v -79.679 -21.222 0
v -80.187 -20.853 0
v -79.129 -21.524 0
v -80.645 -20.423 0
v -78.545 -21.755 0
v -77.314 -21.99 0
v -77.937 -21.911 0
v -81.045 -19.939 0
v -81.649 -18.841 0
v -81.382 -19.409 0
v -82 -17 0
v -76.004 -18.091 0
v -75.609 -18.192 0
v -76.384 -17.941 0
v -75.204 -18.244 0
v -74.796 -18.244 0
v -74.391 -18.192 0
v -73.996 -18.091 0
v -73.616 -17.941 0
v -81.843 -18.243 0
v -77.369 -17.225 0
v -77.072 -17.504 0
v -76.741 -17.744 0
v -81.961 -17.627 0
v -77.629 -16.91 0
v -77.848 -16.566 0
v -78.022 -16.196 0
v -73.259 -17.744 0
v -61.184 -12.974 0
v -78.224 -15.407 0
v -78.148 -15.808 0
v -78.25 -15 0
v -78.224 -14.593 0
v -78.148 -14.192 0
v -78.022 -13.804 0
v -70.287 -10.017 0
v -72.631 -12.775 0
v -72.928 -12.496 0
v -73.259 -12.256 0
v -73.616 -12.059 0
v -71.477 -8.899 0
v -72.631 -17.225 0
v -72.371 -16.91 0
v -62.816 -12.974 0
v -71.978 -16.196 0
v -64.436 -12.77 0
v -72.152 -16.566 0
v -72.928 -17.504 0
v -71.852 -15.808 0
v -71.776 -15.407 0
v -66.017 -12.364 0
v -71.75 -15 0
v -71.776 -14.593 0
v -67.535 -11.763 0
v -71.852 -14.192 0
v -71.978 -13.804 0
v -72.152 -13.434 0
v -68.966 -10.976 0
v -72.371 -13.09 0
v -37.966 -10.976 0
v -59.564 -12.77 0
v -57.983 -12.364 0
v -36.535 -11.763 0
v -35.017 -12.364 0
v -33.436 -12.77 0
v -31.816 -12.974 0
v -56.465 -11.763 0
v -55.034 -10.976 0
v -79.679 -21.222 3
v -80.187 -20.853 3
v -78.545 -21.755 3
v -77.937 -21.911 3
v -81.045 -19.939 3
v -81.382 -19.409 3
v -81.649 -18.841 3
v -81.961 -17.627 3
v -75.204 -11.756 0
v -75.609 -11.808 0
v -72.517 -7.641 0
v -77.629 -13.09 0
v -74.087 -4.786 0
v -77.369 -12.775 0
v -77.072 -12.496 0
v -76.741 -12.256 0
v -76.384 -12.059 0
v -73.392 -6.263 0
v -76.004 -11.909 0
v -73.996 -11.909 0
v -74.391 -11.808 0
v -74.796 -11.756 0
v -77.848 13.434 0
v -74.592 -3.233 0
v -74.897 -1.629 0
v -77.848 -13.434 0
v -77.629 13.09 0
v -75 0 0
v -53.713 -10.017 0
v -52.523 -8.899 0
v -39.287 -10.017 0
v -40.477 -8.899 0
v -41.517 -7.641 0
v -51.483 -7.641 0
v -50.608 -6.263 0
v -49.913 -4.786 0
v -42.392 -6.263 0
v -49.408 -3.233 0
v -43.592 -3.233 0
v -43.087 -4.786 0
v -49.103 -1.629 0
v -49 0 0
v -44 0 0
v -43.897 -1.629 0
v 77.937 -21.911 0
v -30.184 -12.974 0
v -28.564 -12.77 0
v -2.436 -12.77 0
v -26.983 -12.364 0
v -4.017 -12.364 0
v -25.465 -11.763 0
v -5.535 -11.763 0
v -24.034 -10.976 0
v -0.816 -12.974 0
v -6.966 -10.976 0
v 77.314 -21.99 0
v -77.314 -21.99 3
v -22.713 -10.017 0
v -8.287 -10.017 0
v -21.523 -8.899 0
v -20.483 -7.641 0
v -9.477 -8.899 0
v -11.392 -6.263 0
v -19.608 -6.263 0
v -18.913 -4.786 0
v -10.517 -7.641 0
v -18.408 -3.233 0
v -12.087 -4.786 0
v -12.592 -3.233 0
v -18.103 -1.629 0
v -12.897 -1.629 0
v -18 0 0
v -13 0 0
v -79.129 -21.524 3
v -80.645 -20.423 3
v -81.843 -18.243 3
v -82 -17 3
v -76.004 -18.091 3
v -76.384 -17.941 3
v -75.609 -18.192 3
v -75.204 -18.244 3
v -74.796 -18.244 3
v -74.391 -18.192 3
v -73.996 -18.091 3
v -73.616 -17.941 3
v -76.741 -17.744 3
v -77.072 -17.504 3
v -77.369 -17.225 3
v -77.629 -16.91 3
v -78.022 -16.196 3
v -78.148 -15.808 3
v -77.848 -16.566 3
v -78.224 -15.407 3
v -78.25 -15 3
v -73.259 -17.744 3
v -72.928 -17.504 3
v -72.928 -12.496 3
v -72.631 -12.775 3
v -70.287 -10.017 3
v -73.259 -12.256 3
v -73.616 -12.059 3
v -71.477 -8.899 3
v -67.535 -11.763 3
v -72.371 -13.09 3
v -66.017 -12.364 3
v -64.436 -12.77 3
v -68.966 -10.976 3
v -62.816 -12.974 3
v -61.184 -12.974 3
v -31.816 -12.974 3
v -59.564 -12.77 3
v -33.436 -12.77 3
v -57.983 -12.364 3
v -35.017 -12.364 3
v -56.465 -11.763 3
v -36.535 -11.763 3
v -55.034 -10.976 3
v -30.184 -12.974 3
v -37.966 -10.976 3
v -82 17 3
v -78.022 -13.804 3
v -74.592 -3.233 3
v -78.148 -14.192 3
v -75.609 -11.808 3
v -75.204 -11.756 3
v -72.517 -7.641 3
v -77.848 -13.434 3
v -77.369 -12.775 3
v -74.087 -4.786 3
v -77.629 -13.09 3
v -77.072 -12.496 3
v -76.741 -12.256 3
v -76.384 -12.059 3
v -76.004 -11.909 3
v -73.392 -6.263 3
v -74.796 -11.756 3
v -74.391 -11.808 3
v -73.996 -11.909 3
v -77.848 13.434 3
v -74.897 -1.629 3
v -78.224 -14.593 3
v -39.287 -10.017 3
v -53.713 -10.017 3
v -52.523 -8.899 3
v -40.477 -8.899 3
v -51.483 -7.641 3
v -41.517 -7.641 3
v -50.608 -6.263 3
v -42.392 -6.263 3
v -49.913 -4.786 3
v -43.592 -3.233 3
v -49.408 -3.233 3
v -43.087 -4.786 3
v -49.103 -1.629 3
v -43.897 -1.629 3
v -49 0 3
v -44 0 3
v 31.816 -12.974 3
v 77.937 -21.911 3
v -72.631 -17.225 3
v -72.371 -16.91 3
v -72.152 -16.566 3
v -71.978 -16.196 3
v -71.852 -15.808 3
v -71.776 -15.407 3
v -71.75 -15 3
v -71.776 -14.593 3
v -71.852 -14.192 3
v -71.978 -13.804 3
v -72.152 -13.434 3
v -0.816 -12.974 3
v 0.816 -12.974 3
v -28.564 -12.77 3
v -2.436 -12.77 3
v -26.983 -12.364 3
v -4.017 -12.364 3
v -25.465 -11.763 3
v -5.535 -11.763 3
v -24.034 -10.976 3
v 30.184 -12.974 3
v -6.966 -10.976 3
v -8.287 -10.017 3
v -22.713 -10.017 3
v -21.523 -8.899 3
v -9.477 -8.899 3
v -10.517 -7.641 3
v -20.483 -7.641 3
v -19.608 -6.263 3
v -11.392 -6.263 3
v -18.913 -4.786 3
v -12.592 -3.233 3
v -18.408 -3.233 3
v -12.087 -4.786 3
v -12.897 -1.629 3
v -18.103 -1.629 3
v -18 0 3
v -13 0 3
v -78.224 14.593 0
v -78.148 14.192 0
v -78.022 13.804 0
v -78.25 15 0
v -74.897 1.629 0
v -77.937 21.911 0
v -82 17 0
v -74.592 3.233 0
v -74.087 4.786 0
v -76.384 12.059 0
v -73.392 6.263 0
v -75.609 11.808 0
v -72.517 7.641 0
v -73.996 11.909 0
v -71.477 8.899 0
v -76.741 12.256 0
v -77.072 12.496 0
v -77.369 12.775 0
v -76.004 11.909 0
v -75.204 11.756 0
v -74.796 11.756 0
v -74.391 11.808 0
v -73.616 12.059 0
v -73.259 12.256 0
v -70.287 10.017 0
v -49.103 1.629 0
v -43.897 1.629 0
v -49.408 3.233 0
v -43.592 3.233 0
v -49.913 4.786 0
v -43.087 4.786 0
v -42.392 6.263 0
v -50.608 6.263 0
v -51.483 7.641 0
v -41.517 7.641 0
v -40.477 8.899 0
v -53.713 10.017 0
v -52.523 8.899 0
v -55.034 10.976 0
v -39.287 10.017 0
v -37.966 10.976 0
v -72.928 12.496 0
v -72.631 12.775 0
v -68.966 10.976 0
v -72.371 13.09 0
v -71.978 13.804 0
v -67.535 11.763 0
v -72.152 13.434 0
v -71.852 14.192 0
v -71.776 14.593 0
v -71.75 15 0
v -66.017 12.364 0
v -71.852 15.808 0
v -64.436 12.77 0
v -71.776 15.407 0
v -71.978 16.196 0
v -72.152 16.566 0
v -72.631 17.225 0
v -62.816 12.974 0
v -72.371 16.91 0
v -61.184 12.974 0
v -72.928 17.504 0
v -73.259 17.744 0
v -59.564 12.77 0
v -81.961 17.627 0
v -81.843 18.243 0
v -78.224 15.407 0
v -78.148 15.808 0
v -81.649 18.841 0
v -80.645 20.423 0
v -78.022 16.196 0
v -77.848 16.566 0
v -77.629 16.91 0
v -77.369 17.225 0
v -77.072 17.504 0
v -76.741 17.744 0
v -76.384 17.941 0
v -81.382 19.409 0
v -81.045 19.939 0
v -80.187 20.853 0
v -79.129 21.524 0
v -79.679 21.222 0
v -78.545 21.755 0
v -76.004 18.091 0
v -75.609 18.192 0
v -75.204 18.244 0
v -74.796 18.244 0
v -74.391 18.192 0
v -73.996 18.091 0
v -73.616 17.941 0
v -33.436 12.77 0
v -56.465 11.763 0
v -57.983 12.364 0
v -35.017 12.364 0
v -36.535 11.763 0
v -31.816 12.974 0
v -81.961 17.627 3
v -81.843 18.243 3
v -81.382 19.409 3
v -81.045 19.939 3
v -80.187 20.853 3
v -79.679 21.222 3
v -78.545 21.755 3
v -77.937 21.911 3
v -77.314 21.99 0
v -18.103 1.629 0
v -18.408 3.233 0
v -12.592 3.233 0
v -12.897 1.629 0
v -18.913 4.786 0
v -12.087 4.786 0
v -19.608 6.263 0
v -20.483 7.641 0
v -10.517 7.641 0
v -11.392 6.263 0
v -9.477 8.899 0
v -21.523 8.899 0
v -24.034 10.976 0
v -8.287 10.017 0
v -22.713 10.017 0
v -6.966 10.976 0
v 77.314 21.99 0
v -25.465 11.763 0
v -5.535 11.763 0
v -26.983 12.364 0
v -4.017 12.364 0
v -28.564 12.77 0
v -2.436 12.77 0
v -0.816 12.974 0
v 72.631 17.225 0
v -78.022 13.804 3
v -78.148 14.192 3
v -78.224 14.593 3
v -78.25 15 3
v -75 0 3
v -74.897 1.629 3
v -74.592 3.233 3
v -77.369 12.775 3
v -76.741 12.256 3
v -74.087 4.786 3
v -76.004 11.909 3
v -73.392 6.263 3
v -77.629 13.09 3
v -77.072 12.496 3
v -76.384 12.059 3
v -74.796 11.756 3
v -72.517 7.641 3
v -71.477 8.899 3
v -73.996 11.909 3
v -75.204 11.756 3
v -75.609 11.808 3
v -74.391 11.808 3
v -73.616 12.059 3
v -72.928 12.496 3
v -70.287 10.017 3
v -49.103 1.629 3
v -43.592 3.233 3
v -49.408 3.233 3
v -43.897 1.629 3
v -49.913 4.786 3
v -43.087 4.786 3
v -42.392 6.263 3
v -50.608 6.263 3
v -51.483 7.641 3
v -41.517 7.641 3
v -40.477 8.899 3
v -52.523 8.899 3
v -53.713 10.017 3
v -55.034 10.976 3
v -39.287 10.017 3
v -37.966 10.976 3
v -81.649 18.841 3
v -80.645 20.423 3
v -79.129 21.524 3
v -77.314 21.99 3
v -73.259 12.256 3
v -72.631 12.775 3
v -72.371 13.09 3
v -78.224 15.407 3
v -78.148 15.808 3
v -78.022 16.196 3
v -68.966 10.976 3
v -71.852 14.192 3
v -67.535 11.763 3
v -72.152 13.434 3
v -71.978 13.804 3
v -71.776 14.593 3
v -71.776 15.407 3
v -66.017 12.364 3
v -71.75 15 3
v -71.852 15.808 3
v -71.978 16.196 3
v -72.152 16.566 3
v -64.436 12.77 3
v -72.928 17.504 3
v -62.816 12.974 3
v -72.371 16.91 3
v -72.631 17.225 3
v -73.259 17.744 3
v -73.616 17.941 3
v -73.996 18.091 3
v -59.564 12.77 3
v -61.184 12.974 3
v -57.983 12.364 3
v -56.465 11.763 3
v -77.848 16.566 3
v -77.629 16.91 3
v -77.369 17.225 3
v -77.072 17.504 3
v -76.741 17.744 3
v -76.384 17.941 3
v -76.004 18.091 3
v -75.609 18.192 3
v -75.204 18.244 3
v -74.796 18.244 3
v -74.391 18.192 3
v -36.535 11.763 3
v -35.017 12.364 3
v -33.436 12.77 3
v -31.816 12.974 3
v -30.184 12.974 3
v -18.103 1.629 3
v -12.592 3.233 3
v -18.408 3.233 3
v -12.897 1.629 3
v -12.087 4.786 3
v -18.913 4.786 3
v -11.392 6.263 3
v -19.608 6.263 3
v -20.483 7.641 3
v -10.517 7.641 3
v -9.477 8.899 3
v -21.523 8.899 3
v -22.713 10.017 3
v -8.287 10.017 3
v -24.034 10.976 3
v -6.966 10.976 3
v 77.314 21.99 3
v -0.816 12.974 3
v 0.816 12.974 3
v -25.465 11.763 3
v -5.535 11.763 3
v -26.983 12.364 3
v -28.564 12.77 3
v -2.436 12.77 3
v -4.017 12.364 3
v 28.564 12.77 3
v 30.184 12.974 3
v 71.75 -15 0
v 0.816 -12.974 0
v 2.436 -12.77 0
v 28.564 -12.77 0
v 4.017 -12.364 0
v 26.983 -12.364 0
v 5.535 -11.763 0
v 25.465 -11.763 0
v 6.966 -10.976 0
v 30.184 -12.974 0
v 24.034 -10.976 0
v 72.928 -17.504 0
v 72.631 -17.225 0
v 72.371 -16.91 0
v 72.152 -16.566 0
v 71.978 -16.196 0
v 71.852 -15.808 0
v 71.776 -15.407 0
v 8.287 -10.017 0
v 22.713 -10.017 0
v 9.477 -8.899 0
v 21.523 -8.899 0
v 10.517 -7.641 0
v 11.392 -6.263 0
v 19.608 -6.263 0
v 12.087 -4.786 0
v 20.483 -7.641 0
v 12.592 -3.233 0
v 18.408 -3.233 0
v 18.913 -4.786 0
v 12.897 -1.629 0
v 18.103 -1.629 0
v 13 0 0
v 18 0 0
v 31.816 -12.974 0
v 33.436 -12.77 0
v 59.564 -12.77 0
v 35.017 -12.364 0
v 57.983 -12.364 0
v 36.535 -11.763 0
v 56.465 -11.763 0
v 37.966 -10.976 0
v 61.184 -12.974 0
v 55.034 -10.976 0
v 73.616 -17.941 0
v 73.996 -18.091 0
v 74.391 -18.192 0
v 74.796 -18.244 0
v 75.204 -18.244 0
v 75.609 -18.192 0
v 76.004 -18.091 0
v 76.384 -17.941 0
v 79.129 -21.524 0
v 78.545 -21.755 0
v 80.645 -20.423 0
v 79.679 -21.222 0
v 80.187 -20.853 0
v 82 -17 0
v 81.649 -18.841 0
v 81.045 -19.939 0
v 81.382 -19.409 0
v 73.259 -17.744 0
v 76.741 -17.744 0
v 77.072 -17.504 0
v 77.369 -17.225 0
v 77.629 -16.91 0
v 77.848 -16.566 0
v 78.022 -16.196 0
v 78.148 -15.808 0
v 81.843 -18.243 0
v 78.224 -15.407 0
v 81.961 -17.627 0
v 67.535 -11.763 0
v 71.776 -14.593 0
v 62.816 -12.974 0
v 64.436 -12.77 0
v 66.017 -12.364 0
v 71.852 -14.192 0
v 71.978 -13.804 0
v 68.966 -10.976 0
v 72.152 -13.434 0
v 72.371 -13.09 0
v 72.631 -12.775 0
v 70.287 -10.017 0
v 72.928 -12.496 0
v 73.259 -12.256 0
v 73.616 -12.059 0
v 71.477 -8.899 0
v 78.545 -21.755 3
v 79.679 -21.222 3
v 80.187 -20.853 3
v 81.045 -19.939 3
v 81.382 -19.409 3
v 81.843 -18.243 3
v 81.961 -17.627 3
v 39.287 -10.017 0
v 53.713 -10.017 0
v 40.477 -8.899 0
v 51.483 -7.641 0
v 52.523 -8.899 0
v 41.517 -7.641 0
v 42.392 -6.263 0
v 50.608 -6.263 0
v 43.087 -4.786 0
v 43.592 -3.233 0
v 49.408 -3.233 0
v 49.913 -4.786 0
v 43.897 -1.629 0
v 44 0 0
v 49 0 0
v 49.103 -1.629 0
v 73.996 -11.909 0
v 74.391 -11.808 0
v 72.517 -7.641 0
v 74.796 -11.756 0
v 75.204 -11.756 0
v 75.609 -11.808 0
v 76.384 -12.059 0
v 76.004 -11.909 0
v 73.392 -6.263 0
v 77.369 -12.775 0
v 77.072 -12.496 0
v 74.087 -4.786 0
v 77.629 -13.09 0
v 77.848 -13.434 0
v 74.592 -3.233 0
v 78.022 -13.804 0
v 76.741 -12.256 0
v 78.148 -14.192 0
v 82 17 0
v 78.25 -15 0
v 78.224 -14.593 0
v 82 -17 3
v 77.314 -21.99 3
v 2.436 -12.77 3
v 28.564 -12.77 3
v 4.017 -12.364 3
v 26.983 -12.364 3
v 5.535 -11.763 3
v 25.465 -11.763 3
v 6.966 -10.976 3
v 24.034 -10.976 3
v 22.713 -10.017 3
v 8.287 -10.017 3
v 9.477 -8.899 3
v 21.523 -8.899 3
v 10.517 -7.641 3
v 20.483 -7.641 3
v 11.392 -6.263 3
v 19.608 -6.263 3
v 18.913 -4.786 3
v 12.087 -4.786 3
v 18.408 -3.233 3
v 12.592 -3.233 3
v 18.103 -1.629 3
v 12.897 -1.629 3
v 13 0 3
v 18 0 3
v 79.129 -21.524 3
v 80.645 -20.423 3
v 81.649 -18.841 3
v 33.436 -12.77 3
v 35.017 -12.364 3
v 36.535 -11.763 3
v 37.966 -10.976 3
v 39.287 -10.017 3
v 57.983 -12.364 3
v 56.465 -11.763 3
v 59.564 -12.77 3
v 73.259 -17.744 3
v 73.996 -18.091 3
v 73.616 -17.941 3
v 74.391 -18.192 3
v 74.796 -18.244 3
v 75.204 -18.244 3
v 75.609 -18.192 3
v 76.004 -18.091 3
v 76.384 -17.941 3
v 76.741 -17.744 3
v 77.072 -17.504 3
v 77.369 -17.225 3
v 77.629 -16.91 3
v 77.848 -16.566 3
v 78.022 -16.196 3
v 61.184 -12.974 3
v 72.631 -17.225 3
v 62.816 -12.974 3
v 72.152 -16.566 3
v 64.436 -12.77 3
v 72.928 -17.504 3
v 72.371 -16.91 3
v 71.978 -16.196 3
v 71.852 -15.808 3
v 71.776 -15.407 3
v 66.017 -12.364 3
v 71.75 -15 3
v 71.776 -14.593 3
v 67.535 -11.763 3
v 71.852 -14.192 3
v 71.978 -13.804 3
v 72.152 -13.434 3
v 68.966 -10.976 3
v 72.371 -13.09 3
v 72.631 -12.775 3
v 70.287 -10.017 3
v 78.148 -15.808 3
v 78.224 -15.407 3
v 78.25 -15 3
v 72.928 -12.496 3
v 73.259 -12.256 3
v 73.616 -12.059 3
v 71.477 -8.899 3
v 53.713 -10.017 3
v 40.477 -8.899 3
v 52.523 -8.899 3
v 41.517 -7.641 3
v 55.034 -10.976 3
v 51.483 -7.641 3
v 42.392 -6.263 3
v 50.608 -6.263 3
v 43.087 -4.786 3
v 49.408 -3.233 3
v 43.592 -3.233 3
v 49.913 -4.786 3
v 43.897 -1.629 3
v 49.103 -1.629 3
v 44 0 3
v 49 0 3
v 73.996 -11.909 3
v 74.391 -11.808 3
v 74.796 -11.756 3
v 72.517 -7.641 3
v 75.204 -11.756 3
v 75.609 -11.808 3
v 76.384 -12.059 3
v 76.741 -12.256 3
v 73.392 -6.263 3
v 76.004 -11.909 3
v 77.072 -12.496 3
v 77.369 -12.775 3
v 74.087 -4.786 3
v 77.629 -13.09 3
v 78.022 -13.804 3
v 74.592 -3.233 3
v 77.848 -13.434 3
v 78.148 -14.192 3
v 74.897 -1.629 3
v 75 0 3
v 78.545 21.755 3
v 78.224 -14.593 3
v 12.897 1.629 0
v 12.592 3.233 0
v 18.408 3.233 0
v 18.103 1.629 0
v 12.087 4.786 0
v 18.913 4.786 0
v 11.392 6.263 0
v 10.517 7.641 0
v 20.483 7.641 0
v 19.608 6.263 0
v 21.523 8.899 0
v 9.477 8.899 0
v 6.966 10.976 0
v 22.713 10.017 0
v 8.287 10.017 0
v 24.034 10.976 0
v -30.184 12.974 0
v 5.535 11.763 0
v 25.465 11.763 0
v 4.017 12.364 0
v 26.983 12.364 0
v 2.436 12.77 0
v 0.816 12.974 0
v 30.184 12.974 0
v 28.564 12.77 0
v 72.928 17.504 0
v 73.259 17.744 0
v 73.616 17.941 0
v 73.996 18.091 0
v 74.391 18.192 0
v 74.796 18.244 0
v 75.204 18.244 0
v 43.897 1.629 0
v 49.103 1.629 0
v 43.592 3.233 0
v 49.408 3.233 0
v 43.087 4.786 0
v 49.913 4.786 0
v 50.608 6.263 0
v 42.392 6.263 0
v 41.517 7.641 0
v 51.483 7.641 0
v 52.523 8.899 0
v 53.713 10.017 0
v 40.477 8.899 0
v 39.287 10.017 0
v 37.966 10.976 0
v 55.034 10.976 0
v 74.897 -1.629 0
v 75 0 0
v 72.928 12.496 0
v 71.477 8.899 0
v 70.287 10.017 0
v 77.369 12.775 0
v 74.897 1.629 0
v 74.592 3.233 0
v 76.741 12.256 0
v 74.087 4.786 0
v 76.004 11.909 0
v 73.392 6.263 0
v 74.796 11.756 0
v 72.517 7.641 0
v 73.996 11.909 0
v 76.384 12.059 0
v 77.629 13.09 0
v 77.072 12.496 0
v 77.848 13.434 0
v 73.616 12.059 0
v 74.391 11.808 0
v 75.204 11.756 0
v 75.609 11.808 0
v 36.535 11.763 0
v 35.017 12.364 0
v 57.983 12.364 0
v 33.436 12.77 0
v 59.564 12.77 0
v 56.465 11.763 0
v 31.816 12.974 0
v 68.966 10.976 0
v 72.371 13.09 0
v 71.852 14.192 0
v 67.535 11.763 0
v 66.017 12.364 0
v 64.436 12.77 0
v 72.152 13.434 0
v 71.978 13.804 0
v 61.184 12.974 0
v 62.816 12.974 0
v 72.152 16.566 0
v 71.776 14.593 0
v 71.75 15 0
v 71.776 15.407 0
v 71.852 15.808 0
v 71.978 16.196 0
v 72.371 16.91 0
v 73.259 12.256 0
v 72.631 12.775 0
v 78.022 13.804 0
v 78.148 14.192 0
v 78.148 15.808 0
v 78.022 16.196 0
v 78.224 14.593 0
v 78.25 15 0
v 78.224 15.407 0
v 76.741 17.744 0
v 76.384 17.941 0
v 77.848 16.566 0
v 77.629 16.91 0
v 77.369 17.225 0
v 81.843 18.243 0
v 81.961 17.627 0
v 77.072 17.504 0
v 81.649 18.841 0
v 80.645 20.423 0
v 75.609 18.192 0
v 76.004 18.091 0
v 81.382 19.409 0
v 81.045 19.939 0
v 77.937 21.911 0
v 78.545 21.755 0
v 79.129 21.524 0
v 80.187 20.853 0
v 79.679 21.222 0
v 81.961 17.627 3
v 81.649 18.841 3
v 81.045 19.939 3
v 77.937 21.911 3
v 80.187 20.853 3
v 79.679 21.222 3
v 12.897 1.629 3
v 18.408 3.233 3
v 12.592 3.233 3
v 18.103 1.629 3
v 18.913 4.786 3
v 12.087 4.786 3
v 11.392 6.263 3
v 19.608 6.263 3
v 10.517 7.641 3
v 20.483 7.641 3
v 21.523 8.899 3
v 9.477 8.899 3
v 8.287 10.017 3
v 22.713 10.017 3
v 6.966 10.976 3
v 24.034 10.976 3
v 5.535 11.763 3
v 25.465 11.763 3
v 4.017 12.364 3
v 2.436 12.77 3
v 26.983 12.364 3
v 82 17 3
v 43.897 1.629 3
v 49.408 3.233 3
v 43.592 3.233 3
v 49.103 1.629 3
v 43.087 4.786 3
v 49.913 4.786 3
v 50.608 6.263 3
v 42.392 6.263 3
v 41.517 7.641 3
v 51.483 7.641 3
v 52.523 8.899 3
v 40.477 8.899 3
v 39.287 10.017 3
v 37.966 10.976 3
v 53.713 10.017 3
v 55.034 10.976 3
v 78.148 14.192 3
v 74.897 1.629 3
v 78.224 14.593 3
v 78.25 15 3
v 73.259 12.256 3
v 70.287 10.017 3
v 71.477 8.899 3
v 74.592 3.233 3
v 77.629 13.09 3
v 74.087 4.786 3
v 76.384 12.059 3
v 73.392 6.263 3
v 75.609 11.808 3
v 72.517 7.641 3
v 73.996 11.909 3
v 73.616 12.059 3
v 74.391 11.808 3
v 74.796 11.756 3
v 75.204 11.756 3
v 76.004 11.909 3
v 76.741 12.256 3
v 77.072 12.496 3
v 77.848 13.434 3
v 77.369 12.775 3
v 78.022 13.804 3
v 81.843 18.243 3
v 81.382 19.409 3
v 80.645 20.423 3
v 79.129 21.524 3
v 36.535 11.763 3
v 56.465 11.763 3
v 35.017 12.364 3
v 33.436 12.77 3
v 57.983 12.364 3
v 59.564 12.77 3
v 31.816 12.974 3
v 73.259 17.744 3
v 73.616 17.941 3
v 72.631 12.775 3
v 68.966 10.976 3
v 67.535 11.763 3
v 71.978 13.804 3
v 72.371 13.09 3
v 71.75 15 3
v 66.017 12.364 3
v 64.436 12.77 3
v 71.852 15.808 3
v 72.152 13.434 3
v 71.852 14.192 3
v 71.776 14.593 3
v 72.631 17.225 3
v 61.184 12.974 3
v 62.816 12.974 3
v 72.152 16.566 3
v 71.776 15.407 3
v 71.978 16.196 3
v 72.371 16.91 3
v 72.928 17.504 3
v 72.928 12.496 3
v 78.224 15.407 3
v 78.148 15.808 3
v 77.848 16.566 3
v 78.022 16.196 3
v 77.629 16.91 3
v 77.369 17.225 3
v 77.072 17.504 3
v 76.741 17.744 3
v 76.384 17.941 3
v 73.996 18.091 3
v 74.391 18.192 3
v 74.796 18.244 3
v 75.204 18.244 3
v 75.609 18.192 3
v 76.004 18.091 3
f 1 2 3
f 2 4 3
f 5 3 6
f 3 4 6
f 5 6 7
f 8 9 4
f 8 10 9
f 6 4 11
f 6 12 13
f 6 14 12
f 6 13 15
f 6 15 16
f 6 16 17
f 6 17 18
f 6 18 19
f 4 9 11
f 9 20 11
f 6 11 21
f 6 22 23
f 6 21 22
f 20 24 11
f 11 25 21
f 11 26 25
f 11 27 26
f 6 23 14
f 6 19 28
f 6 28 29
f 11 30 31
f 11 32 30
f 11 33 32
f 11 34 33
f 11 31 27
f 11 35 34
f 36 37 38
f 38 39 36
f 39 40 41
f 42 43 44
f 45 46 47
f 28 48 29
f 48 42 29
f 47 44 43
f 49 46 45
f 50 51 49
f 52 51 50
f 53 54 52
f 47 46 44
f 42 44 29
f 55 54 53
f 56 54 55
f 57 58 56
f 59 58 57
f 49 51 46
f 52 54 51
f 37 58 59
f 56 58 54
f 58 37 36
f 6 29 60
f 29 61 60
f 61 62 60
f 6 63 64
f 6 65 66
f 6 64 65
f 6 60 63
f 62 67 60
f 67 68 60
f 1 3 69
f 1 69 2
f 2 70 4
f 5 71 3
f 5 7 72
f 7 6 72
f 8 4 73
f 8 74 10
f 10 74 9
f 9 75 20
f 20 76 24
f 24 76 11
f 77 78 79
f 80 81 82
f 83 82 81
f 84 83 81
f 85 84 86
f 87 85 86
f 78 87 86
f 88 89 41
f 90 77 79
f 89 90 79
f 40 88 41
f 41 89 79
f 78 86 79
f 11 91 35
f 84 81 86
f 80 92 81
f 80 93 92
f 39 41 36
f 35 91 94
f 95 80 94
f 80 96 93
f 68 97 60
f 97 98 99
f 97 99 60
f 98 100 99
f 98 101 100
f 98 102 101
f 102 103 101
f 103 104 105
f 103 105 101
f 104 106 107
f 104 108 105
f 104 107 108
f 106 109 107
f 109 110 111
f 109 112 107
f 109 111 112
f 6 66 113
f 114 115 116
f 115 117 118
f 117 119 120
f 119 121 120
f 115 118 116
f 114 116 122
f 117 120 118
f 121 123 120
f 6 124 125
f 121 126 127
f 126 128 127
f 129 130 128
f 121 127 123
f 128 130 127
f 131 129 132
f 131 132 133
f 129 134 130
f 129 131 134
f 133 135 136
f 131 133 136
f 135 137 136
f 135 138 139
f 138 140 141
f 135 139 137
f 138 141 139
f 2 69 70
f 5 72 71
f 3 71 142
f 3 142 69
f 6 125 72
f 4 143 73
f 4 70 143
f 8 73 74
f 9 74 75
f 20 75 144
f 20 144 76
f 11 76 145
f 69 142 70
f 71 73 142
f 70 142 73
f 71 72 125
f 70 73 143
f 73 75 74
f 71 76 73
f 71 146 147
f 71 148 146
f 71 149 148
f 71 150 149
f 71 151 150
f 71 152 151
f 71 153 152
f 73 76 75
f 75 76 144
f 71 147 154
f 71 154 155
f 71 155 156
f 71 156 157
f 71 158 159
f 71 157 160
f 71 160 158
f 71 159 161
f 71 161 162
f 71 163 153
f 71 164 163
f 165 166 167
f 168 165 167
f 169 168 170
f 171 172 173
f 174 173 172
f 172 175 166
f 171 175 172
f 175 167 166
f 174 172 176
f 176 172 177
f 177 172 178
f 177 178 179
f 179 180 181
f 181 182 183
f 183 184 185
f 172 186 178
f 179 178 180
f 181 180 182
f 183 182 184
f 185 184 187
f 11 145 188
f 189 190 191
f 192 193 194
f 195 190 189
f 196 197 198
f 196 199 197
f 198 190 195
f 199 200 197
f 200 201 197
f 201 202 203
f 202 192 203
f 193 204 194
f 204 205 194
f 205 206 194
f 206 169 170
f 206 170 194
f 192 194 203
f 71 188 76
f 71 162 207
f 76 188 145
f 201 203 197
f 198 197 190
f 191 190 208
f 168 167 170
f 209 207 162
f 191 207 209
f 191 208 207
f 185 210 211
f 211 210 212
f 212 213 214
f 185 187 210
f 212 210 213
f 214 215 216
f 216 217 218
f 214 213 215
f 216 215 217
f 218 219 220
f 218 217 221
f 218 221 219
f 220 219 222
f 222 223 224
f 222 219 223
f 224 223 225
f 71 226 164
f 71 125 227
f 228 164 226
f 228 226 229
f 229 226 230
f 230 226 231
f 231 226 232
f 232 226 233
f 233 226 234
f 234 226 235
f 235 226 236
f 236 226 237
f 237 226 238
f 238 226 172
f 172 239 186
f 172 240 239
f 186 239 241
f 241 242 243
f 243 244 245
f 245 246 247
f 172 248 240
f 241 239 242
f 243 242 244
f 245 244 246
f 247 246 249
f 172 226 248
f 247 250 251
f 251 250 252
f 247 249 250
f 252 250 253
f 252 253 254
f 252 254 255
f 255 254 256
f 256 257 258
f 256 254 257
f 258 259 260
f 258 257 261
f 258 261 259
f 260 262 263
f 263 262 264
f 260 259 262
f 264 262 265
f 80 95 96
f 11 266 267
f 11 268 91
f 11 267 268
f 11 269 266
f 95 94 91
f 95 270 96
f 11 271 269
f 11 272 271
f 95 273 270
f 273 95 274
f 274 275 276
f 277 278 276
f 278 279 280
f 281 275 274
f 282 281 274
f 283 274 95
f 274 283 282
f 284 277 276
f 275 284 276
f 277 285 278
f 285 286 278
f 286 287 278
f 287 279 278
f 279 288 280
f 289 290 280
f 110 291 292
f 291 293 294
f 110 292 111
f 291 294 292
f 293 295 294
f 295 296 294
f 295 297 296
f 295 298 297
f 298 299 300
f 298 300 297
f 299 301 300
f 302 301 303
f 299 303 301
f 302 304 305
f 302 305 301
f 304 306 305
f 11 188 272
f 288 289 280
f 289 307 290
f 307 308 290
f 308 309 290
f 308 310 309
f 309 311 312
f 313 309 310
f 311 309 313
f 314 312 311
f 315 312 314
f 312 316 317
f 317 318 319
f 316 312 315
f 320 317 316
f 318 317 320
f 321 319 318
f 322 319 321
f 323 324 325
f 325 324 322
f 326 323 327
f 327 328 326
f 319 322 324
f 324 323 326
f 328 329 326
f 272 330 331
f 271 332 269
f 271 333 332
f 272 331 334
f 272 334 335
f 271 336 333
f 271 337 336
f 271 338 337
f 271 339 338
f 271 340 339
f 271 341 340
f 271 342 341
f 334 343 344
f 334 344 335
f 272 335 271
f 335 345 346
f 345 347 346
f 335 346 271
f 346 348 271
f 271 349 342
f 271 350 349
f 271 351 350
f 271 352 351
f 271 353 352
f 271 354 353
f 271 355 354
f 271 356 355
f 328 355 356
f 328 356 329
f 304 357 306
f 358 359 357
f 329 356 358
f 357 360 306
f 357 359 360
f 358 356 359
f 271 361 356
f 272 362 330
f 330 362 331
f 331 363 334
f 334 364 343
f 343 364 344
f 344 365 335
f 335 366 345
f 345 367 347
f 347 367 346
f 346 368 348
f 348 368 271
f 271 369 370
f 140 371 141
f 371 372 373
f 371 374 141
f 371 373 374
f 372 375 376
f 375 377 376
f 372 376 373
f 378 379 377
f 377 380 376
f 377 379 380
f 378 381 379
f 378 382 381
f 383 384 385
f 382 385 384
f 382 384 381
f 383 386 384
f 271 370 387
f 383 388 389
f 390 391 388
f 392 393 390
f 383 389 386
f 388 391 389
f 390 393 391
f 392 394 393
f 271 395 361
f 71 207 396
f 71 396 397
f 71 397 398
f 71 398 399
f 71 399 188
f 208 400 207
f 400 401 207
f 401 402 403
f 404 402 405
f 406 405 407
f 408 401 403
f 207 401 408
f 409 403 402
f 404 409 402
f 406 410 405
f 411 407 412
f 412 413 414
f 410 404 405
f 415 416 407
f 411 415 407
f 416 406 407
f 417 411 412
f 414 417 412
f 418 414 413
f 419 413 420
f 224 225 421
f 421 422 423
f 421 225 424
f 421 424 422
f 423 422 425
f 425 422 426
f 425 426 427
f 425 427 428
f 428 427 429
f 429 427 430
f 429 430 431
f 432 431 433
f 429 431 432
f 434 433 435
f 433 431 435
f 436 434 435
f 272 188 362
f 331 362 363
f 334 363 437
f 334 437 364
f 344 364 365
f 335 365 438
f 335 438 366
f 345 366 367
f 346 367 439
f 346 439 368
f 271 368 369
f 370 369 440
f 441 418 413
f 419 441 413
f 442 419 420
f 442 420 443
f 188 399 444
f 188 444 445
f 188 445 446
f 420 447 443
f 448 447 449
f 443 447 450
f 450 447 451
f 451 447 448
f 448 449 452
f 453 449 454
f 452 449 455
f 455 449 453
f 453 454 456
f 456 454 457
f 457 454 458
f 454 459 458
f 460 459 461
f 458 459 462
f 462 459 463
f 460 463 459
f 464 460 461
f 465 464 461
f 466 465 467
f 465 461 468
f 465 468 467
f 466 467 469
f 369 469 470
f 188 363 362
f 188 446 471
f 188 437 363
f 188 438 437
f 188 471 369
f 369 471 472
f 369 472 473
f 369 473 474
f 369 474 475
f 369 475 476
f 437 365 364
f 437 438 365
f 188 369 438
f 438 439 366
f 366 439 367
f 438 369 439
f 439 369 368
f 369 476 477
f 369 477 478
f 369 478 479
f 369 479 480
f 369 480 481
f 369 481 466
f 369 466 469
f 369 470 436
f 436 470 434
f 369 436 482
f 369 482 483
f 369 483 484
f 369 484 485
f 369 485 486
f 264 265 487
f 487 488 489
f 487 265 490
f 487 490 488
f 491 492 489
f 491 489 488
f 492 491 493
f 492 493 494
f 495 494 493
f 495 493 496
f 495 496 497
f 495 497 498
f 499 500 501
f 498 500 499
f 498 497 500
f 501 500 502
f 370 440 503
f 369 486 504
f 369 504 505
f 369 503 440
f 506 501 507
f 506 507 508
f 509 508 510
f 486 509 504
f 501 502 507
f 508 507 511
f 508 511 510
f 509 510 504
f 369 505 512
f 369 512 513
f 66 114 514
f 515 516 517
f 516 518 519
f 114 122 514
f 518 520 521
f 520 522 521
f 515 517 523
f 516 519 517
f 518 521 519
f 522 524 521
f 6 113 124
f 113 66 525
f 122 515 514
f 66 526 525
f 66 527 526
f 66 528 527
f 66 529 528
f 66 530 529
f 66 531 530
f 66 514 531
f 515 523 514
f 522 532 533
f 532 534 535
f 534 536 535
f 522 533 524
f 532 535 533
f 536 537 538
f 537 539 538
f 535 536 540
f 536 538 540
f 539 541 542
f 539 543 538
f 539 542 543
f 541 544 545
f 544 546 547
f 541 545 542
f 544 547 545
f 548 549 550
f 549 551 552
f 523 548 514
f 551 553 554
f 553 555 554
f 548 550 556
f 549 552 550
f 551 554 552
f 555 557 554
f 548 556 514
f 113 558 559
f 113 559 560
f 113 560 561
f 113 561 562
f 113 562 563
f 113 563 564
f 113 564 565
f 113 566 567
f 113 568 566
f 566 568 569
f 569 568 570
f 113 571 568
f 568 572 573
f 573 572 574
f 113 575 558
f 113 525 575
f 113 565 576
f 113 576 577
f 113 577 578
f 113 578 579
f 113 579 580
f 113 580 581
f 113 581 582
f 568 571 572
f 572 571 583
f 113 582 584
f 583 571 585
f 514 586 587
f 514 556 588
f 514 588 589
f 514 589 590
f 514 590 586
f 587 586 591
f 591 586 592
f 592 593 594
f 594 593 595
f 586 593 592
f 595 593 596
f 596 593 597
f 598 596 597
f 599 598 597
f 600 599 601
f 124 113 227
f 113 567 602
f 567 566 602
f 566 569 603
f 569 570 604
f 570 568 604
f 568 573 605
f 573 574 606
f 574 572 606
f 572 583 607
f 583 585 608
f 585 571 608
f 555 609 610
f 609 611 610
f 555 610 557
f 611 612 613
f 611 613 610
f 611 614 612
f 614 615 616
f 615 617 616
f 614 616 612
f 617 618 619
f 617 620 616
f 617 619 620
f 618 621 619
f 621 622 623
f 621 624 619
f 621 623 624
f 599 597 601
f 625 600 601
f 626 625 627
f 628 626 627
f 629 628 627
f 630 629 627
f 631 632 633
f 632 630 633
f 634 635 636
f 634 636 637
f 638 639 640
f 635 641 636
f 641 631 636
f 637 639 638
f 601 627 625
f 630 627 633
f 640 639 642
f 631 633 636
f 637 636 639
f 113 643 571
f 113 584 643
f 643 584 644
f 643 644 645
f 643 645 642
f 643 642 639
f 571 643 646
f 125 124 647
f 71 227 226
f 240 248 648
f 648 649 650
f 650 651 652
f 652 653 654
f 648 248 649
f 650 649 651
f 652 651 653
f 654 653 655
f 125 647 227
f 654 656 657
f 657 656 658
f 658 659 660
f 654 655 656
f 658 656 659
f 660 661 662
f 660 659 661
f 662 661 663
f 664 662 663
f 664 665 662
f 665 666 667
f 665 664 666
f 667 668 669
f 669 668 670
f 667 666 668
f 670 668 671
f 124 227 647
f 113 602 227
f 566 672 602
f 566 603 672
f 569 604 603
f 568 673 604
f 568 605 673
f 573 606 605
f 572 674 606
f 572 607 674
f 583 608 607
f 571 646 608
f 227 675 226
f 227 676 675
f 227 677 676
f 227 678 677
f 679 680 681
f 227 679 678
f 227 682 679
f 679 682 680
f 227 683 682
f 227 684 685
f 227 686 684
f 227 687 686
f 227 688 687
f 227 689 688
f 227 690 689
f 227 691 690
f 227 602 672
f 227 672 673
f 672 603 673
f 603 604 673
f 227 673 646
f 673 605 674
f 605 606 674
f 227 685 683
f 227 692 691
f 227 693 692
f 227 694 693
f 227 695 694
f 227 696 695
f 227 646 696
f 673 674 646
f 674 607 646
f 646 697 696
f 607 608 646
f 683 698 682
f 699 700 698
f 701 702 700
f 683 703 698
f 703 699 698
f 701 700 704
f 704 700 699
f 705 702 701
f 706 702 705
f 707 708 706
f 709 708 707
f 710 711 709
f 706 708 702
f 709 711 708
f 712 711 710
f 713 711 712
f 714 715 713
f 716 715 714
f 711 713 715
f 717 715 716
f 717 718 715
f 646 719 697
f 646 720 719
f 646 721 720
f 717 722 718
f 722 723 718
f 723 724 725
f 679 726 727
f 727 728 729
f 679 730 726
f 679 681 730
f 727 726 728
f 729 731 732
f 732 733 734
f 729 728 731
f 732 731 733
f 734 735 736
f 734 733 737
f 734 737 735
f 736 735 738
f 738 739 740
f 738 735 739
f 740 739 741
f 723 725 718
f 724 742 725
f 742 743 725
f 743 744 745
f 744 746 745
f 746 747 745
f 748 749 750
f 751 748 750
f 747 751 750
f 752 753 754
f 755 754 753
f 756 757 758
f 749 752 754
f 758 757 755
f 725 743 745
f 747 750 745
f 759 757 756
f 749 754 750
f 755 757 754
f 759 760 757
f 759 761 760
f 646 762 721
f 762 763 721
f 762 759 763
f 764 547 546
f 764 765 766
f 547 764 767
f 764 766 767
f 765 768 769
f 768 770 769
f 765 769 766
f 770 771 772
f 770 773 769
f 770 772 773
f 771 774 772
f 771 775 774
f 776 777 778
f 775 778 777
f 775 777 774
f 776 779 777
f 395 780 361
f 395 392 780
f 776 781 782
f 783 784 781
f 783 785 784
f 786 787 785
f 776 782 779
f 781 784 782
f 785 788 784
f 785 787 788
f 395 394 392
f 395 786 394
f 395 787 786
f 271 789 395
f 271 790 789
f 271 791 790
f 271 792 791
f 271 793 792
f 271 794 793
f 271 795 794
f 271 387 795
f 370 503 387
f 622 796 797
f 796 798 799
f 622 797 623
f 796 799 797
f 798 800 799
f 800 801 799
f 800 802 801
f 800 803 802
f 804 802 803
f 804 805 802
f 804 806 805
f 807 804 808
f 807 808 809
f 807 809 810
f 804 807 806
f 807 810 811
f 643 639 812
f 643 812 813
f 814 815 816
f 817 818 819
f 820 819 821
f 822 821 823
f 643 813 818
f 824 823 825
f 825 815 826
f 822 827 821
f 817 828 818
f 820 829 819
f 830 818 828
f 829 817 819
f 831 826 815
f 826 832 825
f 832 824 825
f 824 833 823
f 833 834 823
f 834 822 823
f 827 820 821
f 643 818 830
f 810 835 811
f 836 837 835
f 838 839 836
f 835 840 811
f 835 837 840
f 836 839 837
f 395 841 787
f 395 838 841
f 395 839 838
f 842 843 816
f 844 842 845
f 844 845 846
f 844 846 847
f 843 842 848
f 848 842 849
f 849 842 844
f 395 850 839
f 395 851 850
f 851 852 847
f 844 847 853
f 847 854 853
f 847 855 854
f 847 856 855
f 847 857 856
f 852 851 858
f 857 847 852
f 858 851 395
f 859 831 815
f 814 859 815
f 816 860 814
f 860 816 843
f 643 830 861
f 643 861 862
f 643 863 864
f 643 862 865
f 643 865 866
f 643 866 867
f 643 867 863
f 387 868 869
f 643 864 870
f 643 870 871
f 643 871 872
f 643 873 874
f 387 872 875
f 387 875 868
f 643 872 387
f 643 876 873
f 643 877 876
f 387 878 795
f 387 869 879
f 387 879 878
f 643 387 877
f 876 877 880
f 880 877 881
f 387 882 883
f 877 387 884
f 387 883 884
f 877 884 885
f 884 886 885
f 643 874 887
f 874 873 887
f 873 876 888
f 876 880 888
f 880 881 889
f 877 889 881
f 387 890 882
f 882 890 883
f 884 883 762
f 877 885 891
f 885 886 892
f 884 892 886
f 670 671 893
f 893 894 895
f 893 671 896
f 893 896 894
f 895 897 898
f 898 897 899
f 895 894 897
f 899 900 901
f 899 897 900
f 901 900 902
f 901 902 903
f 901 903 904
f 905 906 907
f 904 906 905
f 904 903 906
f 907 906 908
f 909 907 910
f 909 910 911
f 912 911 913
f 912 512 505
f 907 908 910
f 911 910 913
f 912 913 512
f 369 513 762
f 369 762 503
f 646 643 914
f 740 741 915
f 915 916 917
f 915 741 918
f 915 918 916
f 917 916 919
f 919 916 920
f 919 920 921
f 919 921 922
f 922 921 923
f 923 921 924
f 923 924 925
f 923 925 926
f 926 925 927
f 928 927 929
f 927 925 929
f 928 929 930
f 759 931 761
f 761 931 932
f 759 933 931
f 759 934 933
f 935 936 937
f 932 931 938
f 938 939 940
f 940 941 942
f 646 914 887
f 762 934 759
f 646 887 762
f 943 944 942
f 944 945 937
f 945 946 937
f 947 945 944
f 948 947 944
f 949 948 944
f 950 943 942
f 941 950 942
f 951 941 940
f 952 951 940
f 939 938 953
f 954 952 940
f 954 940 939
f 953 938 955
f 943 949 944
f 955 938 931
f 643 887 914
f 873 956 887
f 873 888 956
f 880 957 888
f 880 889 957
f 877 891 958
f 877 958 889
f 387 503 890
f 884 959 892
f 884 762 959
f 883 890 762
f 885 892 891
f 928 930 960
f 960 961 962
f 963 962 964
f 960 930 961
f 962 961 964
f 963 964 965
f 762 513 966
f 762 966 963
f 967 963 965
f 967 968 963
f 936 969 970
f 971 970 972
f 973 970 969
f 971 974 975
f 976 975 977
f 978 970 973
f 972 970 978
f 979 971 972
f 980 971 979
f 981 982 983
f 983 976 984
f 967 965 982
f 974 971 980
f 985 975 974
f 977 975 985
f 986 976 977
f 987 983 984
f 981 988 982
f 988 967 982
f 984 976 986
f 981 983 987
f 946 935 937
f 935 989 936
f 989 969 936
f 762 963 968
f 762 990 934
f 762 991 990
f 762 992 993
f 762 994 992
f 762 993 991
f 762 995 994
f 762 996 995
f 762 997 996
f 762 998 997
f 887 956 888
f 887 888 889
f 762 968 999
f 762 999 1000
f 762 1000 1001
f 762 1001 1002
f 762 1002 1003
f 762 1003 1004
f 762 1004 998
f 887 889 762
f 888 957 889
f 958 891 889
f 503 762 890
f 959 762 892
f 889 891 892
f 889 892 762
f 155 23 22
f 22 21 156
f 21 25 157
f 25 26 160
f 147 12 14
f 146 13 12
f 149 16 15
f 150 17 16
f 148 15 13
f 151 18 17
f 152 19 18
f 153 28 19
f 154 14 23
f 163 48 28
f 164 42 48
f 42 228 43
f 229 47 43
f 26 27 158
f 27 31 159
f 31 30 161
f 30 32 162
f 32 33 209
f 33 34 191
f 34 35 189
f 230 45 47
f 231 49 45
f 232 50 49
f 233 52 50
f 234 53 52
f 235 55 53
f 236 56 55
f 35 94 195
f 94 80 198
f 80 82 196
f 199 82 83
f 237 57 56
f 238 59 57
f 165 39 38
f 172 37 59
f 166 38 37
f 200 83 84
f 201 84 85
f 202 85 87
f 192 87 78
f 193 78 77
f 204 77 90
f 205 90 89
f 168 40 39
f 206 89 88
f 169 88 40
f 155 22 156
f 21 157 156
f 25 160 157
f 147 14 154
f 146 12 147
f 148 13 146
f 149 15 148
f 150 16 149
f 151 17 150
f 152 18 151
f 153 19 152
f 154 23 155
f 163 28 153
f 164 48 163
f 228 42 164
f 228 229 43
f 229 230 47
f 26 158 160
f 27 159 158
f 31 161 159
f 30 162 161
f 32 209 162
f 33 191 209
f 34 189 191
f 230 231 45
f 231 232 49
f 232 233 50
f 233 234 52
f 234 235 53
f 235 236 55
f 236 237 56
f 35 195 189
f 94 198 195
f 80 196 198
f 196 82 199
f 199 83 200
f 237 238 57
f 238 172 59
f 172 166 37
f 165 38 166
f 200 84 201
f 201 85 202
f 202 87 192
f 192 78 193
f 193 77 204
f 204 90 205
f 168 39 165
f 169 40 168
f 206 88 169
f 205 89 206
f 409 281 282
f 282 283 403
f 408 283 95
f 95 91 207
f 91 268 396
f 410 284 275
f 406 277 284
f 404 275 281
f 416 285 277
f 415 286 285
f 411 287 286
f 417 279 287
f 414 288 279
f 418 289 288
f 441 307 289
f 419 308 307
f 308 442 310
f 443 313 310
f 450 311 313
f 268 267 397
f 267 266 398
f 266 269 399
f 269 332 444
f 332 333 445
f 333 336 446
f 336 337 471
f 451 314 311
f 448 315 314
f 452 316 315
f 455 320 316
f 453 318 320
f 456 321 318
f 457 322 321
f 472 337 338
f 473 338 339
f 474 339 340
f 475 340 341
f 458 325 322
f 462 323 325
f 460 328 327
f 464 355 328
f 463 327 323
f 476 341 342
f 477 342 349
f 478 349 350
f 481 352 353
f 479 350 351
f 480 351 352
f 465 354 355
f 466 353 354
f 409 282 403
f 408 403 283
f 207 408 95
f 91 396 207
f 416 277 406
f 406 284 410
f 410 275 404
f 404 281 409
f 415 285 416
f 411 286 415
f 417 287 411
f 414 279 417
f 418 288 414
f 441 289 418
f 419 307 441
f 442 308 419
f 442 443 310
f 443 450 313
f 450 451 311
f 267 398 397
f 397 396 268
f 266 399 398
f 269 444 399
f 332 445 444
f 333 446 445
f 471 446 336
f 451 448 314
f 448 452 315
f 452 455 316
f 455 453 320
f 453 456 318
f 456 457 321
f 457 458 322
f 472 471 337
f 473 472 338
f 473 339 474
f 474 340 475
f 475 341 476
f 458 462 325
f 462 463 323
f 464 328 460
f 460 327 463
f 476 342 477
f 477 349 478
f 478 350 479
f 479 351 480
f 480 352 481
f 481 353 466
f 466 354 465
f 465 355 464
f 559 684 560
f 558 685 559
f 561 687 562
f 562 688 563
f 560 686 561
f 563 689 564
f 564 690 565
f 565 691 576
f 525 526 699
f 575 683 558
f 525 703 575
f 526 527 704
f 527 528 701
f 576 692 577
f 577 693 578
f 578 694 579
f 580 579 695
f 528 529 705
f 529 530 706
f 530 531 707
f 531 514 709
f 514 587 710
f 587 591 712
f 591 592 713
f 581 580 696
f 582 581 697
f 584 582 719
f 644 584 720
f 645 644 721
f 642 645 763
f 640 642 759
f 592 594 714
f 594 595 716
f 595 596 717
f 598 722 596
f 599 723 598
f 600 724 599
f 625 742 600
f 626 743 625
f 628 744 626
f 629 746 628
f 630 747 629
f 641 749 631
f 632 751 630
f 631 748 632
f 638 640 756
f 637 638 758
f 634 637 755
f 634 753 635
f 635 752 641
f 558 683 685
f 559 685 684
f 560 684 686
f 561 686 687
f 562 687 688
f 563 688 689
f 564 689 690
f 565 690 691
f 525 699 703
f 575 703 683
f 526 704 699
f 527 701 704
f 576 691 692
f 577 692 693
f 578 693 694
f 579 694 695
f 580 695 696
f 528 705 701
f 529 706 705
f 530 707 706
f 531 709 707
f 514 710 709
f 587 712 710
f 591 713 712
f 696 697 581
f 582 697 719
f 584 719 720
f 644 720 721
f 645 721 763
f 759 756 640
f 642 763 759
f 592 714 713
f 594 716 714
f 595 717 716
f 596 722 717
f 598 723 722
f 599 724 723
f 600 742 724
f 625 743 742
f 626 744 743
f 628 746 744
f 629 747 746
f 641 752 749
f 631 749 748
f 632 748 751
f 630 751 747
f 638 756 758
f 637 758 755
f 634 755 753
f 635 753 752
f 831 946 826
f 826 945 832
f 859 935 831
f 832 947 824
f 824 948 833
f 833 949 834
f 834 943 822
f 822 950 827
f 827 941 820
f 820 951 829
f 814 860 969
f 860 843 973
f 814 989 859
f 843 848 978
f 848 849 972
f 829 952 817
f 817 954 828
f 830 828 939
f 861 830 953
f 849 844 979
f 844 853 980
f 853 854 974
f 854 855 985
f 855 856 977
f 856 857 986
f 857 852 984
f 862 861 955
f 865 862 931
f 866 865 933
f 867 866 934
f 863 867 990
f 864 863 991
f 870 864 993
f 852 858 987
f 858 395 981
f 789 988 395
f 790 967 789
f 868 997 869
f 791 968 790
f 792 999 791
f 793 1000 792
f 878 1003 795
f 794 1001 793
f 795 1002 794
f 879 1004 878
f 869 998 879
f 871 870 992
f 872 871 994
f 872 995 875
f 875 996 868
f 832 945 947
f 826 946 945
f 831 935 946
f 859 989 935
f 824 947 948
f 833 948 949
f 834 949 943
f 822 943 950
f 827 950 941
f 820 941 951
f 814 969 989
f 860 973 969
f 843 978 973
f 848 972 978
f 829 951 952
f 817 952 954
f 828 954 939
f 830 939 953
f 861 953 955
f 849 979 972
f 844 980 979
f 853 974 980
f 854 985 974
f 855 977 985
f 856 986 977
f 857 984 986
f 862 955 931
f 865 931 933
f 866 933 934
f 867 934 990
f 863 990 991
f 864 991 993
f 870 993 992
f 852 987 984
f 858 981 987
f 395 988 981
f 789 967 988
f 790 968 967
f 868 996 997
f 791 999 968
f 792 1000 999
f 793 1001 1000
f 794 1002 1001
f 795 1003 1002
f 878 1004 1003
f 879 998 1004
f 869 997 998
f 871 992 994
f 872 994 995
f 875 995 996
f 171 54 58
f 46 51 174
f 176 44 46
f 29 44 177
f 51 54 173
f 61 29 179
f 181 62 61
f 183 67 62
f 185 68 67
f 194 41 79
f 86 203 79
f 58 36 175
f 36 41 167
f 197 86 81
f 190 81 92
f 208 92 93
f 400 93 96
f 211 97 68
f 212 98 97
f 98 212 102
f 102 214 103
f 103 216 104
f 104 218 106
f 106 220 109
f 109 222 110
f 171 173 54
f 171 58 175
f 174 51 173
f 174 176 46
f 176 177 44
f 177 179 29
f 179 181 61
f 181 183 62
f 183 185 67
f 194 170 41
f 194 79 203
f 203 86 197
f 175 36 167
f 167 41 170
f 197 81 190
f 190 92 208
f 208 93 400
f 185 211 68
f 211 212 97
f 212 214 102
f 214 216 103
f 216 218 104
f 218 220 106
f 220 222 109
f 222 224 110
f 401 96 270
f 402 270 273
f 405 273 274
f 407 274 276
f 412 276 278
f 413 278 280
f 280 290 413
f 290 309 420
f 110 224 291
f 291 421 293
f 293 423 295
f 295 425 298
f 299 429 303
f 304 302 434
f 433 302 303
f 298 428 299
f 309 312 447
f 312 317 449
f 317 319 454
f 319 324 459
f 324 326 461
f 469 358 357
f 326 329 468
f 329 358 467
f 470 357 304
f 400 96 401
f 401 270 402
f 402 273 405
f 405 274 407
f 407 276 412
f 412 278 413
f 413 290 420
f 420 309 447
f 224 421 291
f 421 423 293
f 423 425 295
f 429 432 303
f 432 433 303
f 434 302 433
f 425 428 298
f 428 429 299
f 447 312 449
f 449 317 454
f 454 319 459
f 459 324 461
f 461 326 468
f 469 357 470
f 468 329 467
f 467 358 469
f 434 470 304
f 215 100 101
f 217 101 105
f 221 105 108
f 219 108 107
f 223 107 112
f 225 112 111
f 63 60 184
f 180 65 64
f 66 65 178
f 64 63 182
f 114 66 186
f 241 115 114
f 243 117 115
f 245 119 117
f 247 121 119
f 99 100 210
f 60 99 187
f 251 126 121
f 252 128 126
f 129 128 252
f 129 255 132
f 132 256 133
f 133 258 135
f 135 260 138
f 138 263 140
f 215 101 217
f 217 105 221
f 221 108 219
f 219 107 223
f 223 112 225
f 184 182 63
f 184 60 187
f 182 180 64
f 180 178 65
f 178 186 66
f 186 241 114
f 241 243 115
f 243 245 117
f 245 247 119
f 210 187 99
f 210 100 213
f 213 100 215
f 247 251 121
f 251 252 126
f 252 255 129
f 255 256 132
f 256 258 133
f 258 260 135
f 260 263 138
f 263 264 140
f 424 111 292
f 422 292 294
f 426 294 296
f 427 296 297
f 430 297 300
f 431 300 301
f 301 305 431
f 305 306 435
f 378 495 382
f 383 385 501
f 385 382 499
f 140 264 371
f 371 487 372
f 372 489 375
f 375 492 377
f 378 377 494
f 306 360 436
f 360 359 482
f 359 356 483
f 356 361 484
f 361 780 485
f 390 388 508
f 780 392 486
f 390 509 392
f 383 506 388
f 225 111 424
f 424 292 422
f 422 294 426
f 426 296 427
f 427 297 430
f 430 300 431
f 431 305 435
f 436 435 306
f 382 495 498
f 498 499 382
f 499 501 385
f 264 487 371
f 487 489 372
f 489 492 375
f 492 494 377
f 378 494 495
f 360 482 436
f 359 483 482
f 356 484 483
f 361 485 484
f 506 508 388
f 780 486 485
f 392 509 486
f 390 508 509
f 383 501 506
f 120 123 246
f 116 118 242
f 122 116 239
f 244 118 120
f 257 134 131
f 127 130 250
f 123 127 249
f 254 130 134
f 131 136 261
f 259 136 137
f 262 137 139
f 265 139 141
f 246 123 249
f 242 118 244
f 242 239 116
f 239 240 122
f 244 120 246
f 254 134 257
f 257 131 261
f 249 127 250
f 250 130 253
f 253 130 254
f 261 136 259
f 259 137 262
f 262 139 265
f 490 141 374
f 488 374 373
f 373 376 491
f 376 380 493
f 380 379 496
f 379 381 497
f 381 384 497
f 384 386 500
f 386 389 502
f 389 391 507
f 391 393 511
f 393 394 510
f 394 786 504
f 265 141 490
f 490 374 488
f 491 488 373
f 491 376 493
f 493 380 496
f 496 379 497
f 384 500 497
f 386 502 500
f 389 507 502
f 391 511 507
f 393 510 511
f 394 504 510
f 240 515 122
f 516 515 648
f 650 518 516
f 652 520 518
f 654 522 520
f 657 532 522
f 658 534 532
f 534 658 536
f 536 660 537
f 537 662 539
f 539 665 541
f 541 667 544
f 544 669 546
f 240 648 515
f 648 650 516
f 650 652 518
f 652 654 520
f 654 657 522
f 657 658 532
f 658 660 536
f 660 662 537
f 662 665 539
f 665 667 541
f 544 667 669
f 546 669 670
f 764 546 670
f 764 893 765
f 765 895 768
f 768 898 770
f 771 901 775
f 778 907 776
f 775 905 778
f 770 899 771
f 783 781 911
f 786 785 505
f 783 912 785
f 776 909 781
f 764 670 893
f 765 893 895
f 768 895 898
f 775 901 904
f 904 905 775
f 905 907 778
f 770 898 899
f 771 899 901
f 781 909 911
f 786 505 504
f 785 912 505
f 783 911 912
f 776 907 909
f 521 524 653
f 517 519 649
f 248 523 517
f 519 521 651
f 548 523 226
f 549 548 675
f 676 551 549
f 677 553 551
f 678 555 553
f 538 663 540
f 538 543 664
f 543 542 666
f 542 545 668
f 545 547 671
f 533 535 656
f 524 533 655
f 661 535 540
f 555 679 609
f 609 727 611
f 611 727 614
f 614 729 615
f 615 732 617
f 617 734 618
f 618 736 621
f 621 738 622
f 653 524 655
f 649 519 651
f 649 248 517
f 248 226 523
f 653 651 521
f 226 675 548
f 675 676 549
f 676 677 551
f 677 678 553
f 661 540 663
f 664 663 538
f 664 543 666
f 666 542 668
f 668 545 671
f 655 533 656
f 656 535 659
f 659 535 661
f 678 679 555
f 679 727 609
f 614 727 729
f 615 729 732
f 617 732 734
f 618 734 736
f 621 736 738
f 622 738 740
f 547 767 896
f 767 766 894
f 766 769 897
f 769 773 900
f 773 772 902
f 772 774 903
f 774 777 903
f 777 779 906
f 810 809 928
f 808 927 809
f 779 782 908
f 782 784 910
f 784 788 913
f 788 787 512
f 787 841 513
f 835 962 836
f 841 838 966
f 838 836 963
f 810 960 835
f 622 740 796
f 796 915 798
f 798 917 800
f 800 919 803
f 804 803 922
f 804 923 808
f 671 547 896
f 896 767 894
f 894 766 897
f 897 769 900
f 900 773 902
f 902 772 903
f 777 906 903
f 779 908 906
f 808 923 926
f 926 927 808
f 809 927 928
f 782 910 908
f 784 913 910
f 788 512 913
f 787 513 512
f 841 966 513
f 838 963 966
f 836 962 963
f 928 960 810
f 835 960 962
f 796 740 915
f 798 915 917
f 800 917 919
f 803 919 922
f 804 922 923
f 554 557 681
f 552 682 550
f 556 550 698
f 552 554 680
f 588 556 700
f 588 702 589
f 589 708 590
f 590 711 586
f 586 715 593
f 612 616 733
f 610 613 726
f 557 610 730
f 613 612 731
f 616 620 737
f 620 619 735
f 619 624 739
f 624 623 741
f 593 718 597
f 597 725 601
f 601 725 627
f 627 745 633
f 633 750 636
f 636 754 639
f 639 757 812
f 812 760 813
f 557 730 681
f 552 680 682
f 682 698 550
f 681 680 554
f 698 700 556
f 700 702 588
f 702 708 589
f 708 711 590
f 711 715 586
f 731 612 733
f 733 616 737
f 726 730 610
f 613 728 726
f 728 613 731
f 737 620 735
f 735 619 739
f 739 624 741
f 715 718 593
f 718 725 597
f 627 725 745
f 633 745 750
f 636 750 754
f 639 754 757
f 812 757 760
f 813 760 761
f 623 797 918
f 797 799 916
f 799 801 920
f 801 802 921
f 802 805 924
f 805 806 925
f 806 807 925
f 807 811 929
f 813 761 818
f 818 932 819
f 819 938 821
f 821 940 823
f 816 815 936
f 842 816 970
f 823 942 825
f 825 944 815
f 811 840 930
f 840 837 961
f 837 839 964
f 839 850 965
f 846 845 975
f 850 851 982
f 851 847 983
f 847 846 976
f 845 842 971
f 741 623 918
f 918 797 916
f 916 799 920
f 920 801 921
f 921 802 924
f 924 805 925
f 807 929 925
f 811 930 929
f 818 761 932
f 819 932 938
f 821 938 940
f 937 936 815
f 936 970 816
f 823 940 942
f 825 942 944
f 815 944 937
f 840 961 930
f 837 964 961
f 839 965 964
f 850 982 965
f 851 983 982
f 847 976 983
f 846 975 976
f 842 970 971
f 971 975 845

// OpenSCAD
$fn = 50;

difference() {
	union() {
		hull() {
			translate(v = [-77.0, 17.0, 0]) {
				cylinder(h = 3, r = 5);
			}
			translate(v = [77.0, 17.0, 0]) {
				cylinder(h = 3, r = 5);
			}
			translate(v = [-77.0, -17.0, 0]) {
				cylinder(h = 3, r = 5);
			}
			translate(v = [77.0, -17.0, 0]) {
				cylinder(h = 3, r = 5);
			}
		}
	}
	union() {
		translate(v = [-75.0, -15.0, -100.0]) {
			cylinder(h = 200, r = 3.25);
		}
		translate(v = [-75.0, 15.0, -100.0]) {
			cylinder(h = 200, r = 3.25);
		}
		translate(v = [75.0, -15.0, -100.0]) {
			cylinder(h = 200, r = 3.25);
		}
		translate(v = [75.0, 15.0, -100.0]) {
			cylinder(h = 200, r = 3.25);
		}
		translate(v = [-75.0, -15.0, -100.0]) {
			cylinder(h = 200, r = 1.8);
		}
		translate(v = [-75.0, 15.0, -100.0]) {
			cylinder(h = 200, r = 1.8);
		}
		translate(v = [75.0, -15.0, -100.0]) {
			cylinder(h = 200, r = 1.8);
		}
		translate(v = [75.0, 15.0, -100.0]) {
			cylinder(h = 200, r = 1.8);
		}
		translate(v = [-62.0, 0, 0.0]) {
			cylinder(h = 3, r = 13.0);
		}
		translate(v = [-31.0, 0, 0.0]) {
			cylinder(h = 3, r = 13.0);
		}
		cylinder(h = 3, r = 13.0);
		translate(v = [31.0, 0, 0.0]) {
			cylinder(h = 3, r = 13.0);
		}
		translate(v = [62.0, 0, 0.0]) {
			cylinder(h = 3, r = 13.0);
		}
	}
}
